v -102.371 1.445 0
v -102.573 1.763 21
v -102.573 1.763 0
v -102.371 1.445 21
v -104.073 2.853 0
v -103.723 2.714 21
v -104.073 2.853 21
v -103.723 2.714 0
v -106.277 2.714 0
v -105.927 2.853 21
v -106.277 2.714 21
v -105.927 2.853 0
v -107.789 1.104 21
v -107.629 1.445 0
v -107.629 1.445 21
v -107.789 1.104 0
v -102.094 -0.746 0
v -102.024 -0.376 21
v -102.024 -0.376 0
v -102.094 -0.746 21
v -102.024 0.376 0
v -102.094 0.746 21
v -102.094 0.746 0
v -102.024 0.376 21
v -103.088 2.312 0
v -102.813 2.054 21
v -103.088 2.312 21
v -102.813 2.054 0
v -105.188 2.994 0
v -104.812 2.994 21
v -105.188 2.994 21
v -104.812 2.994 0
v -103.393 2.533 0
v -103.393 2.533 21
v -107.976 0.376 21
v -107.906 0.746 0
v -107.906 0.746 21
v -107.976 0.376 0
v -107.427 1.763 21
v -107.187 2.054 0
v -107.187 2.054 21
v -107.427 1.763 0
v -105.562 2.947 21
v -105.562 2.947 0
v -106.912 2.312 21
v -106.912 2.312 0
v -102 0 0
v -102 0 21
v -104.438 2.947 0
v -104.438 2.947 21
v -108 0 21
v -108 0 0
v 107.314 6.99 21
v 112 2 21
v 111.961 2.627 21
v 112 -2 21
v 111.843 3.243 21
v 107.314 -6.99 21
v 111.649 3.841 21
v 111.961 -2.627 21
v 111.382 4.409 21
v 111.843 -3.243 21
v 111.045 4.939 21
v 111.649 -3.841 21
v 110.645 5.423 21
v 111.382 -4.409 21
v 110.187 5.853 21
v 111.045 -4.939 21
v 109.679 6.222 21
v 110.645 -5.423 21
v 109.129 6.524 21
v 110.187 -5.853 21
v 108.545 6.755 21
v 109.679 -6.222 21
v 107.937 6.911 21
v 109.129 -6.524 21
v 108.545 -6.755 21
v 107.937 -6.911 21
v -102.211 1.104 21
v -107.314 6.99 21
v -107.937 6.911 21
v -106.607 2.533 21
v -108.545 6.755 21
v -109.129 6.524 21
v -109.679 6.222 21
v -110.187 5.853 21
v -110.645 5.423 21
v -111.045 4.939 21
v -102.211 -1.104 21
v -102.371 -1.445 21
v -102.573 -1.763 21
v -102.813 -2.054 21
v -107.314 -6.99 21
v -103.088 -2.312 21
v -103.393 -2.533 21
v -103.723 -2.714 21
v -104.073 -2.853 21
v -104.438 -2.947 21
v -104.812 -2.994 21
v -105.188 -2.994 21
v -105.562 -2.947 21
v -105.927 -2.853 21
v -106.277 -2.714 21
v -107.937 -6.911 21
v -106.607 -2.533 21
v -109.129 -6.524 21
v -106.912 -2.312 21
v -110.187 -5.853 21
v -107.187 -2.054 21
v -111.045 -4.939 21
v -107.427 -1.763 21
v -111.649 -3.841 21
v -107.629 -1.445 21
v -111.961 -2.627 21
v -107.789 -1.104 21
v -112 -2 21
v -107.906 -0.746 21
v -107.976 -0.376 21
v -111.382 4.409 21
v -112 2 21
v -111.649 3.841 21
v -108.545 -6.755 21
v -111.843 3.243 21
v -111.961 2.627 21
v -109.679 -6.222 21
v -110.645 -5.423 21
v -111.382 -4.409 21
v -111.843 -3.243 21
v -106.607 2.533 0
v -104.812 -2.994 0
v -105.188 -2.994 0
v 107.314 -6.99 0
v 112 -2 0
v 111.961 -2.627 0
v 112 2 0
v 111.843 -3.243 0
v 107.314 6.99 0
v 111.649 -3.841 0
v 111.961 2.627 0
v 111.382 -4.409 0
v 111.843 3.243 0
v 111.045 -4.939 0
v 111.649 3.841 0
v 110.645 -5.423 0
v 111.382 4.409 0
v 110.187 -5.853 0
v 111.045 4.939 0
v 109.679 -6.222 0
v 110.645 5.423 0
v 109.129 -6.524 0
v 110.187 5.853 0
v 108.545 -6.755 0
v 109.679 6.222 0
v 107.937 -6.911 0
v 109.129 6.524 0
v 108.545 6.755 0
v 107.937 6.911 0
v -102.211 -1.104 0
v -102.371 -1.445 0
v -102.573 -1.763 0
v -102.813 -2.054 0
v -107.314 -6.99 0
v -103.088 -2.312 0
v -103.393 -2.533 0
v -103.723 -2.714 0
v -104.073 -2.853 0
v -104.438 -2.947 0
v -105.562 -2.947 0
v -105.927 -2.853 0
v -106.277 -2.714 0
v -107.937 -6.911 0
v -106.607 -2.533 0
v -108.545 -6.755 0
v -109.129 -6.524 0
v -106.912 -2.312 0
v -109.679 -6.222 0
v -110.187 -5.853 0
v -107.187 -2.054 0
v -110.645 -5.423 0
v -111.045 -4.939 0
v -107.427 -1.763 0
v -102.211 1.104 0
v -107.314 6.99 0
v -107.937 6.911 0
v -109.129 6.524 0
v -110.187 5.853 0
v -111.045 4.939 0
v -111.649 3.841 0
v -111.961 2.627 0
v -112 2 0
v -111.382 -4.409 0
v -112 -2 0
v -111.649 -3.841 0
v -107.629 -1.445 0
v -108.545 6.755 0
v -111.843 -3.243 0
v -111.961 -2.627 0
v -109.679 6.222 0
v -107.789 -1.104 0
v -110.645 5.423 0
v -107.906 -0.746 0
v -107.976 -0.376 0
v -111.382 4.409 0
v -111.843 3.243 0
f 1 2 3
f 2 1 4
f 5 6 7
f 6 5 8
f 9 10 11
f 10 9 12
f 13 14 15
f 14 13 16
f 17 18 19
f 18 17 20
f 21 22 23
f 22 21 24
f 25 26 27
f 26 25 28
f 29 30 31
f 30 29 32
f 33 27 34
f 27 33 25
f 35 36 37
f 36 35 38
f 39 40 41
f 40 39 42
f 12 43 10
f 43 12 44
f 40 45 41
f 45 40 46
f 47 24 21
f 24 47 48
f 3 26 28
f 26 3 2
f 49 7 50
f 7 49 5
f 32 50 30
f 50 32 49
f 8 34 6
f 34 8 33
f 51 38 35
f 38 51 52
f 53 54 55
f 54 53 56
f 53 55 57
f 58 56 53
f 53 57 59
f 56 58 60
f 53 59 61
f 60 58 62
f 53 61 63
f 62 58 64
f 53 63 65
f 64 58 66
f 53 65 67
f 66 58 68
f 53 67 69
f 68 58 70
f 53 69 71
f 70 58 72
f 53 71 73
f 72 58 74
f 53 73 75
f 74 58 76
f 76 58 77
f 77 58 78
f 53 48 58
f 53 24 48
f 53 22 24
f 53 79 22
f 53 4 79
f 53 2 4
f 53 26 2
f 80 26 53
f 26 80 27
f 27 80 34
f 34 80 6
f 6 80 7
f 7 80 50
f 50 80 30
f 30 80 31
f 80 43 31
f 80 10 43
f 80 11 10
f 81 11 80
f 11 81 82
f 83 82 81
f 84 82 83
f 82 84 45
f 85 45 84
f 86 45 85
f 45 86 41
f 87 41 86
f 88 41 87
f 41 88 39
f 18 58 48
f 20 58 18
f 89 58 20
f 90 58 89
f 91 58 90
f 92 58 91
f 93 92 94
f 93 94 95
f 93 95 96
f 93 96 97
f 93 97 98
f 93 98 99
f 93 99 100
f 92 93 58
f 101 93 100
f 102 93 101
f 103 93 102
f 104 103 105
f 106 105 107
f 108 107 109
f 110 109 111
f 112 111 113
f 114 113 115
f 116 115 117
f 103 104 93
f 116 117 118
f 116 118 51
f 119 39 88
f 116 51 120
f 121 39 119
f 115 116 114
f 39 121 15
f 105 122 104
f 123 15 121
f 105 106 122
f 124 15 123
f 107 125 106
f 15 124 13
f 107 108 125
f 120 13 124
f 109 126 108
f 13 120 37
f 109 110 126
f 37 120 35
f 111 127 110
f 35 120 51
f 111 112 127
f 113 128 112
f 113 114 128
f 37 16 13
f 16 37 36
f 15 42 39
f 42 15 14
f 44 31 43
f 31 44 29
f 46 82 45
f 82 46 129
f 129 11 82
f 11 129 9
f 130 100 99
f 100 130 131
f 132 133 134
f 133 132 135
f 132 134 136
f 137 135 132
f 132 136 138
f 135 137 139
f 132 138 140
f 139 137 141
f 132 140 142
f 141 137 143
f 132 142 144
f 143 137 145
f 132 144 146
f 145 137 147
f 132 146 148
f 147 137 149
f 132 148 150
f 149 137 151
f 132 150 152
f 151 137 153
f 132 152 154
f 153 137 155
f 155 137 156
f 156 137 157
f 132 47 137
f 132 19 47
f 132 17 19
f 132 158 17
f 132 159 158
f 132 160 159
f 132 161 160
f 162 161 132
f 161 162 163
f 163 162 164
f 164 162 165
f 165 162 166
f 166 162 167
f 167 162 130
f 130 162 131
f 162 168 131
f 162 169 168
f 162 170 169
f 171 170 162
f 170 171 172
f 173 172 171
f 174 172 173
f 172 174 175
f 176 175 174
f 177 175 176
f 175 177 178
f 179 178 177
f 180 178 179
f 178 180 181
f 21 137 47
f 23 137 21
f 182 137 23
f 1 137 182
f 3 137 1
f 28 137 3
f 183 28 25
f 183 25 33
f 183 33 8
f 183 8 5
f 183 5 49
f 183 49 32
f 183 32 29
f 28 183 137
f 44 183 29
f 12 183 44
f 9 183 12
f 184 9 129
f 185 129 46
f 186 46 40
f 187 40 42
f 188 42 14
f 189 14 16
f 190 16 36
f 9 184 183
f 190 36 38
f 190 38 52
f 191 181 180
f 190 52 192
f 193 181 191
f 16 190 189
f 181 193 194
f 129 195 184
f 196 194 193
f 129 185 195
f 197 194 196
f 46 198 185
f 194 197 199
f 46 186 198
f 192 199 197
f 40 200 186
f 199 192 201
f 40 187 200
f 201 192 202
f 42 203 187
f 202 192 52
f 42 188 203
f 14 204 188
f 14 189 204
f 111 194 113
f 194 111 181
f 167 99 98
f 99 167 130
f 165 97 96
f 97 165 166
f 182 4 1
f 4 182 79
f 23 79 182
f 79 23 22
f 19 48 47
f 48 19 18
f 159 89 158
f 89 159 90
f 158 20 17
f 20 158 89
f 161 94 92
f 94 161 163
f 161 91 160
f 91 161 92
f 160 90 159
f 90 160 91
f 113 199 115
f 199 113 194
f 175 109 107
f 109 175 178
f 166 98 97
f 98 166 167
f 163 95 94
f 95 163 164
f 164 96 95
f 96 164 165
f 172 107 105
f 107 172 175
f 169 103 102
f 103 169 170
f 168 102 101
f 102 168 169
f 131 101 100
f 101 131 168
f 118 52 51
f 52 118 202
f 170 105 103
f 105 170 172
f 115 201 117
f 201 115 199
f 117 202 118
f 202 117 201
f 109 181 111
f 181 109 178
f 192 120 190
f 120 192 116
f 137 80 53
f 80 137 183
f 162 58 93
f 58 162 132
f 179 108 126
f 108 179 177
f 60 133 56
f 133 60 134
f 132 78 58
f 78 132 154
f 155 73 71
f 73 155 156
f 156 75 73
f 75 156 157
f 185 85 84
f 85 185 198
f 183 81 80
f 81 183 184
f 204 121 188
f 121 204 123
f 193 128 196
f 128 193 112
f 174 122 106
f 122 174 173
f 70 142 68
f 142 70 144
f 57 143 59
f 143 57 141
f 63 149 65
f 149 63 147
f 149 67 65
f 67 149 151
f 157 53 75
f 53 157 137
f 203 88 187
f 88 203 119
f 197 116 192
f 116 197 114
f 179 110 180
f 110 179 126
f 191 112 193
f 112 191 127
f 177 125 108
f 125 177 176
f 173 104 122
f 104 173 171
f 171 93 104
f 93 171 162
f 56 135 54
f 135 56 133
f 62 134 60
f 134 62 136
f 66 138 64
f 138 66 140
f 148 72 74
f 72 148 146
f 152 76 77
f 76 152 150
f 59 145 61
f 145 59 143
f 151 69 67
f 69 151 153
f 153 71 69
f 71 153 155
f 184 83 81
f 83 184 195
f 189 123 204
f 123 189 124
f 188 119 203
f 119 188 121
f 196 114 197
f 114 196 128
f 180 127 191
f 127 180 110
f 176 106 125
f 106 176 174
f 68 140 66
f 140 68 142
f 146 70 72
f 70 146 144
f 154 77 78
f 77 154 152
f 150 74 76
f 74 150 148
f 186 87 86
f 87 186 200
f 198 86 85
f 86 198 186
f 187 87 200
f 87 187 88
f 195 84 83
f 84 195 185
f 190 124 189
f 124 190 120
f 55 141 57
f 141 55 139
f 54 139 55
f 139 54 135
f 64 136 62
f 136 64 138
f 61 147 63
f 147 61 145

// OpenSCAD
$fn = 50;


difference() {
	union() {
		hull() {
			translate(v = [-107.0000000000, 2.0000000000, 0]) {
				cylinder(h = 21, r = 5);
			}
			translate(v = [107.0000000000, 2.0000000000, 0]) {
				cylinder(h = 21, r = 5);
			}
			translate(v = [-107.0000000000, -2.0000000000, 0]) {
				cylinder(h = 21, r = 5);
			}
			translate(v = [107.0000000000, -2.0000000000, 0]) {
				cylinder(h = 21, r = 5);
			}
		}
	}
	union() {
		translate(v = [-105.0000000000, 0.0000000000, 0]) {
			cylinder(h = 21, r = 3.0000000000);
		}
		translate(v = [-105.0000000000, 0.0000000000, 0]) {
			cylinder(h = 21, r = 1.5000000000);
		}
		translate(v = [-105.0000000000, 0.0000000000, 0]) {
			cylinder(h = 21, r = 1.5000000000);
		}
		translate(v = [-105.0000000000, 0.0000000000, 0]) {
			cylinder(h = 21, r = 1.5000000000);
		}
	}
}
